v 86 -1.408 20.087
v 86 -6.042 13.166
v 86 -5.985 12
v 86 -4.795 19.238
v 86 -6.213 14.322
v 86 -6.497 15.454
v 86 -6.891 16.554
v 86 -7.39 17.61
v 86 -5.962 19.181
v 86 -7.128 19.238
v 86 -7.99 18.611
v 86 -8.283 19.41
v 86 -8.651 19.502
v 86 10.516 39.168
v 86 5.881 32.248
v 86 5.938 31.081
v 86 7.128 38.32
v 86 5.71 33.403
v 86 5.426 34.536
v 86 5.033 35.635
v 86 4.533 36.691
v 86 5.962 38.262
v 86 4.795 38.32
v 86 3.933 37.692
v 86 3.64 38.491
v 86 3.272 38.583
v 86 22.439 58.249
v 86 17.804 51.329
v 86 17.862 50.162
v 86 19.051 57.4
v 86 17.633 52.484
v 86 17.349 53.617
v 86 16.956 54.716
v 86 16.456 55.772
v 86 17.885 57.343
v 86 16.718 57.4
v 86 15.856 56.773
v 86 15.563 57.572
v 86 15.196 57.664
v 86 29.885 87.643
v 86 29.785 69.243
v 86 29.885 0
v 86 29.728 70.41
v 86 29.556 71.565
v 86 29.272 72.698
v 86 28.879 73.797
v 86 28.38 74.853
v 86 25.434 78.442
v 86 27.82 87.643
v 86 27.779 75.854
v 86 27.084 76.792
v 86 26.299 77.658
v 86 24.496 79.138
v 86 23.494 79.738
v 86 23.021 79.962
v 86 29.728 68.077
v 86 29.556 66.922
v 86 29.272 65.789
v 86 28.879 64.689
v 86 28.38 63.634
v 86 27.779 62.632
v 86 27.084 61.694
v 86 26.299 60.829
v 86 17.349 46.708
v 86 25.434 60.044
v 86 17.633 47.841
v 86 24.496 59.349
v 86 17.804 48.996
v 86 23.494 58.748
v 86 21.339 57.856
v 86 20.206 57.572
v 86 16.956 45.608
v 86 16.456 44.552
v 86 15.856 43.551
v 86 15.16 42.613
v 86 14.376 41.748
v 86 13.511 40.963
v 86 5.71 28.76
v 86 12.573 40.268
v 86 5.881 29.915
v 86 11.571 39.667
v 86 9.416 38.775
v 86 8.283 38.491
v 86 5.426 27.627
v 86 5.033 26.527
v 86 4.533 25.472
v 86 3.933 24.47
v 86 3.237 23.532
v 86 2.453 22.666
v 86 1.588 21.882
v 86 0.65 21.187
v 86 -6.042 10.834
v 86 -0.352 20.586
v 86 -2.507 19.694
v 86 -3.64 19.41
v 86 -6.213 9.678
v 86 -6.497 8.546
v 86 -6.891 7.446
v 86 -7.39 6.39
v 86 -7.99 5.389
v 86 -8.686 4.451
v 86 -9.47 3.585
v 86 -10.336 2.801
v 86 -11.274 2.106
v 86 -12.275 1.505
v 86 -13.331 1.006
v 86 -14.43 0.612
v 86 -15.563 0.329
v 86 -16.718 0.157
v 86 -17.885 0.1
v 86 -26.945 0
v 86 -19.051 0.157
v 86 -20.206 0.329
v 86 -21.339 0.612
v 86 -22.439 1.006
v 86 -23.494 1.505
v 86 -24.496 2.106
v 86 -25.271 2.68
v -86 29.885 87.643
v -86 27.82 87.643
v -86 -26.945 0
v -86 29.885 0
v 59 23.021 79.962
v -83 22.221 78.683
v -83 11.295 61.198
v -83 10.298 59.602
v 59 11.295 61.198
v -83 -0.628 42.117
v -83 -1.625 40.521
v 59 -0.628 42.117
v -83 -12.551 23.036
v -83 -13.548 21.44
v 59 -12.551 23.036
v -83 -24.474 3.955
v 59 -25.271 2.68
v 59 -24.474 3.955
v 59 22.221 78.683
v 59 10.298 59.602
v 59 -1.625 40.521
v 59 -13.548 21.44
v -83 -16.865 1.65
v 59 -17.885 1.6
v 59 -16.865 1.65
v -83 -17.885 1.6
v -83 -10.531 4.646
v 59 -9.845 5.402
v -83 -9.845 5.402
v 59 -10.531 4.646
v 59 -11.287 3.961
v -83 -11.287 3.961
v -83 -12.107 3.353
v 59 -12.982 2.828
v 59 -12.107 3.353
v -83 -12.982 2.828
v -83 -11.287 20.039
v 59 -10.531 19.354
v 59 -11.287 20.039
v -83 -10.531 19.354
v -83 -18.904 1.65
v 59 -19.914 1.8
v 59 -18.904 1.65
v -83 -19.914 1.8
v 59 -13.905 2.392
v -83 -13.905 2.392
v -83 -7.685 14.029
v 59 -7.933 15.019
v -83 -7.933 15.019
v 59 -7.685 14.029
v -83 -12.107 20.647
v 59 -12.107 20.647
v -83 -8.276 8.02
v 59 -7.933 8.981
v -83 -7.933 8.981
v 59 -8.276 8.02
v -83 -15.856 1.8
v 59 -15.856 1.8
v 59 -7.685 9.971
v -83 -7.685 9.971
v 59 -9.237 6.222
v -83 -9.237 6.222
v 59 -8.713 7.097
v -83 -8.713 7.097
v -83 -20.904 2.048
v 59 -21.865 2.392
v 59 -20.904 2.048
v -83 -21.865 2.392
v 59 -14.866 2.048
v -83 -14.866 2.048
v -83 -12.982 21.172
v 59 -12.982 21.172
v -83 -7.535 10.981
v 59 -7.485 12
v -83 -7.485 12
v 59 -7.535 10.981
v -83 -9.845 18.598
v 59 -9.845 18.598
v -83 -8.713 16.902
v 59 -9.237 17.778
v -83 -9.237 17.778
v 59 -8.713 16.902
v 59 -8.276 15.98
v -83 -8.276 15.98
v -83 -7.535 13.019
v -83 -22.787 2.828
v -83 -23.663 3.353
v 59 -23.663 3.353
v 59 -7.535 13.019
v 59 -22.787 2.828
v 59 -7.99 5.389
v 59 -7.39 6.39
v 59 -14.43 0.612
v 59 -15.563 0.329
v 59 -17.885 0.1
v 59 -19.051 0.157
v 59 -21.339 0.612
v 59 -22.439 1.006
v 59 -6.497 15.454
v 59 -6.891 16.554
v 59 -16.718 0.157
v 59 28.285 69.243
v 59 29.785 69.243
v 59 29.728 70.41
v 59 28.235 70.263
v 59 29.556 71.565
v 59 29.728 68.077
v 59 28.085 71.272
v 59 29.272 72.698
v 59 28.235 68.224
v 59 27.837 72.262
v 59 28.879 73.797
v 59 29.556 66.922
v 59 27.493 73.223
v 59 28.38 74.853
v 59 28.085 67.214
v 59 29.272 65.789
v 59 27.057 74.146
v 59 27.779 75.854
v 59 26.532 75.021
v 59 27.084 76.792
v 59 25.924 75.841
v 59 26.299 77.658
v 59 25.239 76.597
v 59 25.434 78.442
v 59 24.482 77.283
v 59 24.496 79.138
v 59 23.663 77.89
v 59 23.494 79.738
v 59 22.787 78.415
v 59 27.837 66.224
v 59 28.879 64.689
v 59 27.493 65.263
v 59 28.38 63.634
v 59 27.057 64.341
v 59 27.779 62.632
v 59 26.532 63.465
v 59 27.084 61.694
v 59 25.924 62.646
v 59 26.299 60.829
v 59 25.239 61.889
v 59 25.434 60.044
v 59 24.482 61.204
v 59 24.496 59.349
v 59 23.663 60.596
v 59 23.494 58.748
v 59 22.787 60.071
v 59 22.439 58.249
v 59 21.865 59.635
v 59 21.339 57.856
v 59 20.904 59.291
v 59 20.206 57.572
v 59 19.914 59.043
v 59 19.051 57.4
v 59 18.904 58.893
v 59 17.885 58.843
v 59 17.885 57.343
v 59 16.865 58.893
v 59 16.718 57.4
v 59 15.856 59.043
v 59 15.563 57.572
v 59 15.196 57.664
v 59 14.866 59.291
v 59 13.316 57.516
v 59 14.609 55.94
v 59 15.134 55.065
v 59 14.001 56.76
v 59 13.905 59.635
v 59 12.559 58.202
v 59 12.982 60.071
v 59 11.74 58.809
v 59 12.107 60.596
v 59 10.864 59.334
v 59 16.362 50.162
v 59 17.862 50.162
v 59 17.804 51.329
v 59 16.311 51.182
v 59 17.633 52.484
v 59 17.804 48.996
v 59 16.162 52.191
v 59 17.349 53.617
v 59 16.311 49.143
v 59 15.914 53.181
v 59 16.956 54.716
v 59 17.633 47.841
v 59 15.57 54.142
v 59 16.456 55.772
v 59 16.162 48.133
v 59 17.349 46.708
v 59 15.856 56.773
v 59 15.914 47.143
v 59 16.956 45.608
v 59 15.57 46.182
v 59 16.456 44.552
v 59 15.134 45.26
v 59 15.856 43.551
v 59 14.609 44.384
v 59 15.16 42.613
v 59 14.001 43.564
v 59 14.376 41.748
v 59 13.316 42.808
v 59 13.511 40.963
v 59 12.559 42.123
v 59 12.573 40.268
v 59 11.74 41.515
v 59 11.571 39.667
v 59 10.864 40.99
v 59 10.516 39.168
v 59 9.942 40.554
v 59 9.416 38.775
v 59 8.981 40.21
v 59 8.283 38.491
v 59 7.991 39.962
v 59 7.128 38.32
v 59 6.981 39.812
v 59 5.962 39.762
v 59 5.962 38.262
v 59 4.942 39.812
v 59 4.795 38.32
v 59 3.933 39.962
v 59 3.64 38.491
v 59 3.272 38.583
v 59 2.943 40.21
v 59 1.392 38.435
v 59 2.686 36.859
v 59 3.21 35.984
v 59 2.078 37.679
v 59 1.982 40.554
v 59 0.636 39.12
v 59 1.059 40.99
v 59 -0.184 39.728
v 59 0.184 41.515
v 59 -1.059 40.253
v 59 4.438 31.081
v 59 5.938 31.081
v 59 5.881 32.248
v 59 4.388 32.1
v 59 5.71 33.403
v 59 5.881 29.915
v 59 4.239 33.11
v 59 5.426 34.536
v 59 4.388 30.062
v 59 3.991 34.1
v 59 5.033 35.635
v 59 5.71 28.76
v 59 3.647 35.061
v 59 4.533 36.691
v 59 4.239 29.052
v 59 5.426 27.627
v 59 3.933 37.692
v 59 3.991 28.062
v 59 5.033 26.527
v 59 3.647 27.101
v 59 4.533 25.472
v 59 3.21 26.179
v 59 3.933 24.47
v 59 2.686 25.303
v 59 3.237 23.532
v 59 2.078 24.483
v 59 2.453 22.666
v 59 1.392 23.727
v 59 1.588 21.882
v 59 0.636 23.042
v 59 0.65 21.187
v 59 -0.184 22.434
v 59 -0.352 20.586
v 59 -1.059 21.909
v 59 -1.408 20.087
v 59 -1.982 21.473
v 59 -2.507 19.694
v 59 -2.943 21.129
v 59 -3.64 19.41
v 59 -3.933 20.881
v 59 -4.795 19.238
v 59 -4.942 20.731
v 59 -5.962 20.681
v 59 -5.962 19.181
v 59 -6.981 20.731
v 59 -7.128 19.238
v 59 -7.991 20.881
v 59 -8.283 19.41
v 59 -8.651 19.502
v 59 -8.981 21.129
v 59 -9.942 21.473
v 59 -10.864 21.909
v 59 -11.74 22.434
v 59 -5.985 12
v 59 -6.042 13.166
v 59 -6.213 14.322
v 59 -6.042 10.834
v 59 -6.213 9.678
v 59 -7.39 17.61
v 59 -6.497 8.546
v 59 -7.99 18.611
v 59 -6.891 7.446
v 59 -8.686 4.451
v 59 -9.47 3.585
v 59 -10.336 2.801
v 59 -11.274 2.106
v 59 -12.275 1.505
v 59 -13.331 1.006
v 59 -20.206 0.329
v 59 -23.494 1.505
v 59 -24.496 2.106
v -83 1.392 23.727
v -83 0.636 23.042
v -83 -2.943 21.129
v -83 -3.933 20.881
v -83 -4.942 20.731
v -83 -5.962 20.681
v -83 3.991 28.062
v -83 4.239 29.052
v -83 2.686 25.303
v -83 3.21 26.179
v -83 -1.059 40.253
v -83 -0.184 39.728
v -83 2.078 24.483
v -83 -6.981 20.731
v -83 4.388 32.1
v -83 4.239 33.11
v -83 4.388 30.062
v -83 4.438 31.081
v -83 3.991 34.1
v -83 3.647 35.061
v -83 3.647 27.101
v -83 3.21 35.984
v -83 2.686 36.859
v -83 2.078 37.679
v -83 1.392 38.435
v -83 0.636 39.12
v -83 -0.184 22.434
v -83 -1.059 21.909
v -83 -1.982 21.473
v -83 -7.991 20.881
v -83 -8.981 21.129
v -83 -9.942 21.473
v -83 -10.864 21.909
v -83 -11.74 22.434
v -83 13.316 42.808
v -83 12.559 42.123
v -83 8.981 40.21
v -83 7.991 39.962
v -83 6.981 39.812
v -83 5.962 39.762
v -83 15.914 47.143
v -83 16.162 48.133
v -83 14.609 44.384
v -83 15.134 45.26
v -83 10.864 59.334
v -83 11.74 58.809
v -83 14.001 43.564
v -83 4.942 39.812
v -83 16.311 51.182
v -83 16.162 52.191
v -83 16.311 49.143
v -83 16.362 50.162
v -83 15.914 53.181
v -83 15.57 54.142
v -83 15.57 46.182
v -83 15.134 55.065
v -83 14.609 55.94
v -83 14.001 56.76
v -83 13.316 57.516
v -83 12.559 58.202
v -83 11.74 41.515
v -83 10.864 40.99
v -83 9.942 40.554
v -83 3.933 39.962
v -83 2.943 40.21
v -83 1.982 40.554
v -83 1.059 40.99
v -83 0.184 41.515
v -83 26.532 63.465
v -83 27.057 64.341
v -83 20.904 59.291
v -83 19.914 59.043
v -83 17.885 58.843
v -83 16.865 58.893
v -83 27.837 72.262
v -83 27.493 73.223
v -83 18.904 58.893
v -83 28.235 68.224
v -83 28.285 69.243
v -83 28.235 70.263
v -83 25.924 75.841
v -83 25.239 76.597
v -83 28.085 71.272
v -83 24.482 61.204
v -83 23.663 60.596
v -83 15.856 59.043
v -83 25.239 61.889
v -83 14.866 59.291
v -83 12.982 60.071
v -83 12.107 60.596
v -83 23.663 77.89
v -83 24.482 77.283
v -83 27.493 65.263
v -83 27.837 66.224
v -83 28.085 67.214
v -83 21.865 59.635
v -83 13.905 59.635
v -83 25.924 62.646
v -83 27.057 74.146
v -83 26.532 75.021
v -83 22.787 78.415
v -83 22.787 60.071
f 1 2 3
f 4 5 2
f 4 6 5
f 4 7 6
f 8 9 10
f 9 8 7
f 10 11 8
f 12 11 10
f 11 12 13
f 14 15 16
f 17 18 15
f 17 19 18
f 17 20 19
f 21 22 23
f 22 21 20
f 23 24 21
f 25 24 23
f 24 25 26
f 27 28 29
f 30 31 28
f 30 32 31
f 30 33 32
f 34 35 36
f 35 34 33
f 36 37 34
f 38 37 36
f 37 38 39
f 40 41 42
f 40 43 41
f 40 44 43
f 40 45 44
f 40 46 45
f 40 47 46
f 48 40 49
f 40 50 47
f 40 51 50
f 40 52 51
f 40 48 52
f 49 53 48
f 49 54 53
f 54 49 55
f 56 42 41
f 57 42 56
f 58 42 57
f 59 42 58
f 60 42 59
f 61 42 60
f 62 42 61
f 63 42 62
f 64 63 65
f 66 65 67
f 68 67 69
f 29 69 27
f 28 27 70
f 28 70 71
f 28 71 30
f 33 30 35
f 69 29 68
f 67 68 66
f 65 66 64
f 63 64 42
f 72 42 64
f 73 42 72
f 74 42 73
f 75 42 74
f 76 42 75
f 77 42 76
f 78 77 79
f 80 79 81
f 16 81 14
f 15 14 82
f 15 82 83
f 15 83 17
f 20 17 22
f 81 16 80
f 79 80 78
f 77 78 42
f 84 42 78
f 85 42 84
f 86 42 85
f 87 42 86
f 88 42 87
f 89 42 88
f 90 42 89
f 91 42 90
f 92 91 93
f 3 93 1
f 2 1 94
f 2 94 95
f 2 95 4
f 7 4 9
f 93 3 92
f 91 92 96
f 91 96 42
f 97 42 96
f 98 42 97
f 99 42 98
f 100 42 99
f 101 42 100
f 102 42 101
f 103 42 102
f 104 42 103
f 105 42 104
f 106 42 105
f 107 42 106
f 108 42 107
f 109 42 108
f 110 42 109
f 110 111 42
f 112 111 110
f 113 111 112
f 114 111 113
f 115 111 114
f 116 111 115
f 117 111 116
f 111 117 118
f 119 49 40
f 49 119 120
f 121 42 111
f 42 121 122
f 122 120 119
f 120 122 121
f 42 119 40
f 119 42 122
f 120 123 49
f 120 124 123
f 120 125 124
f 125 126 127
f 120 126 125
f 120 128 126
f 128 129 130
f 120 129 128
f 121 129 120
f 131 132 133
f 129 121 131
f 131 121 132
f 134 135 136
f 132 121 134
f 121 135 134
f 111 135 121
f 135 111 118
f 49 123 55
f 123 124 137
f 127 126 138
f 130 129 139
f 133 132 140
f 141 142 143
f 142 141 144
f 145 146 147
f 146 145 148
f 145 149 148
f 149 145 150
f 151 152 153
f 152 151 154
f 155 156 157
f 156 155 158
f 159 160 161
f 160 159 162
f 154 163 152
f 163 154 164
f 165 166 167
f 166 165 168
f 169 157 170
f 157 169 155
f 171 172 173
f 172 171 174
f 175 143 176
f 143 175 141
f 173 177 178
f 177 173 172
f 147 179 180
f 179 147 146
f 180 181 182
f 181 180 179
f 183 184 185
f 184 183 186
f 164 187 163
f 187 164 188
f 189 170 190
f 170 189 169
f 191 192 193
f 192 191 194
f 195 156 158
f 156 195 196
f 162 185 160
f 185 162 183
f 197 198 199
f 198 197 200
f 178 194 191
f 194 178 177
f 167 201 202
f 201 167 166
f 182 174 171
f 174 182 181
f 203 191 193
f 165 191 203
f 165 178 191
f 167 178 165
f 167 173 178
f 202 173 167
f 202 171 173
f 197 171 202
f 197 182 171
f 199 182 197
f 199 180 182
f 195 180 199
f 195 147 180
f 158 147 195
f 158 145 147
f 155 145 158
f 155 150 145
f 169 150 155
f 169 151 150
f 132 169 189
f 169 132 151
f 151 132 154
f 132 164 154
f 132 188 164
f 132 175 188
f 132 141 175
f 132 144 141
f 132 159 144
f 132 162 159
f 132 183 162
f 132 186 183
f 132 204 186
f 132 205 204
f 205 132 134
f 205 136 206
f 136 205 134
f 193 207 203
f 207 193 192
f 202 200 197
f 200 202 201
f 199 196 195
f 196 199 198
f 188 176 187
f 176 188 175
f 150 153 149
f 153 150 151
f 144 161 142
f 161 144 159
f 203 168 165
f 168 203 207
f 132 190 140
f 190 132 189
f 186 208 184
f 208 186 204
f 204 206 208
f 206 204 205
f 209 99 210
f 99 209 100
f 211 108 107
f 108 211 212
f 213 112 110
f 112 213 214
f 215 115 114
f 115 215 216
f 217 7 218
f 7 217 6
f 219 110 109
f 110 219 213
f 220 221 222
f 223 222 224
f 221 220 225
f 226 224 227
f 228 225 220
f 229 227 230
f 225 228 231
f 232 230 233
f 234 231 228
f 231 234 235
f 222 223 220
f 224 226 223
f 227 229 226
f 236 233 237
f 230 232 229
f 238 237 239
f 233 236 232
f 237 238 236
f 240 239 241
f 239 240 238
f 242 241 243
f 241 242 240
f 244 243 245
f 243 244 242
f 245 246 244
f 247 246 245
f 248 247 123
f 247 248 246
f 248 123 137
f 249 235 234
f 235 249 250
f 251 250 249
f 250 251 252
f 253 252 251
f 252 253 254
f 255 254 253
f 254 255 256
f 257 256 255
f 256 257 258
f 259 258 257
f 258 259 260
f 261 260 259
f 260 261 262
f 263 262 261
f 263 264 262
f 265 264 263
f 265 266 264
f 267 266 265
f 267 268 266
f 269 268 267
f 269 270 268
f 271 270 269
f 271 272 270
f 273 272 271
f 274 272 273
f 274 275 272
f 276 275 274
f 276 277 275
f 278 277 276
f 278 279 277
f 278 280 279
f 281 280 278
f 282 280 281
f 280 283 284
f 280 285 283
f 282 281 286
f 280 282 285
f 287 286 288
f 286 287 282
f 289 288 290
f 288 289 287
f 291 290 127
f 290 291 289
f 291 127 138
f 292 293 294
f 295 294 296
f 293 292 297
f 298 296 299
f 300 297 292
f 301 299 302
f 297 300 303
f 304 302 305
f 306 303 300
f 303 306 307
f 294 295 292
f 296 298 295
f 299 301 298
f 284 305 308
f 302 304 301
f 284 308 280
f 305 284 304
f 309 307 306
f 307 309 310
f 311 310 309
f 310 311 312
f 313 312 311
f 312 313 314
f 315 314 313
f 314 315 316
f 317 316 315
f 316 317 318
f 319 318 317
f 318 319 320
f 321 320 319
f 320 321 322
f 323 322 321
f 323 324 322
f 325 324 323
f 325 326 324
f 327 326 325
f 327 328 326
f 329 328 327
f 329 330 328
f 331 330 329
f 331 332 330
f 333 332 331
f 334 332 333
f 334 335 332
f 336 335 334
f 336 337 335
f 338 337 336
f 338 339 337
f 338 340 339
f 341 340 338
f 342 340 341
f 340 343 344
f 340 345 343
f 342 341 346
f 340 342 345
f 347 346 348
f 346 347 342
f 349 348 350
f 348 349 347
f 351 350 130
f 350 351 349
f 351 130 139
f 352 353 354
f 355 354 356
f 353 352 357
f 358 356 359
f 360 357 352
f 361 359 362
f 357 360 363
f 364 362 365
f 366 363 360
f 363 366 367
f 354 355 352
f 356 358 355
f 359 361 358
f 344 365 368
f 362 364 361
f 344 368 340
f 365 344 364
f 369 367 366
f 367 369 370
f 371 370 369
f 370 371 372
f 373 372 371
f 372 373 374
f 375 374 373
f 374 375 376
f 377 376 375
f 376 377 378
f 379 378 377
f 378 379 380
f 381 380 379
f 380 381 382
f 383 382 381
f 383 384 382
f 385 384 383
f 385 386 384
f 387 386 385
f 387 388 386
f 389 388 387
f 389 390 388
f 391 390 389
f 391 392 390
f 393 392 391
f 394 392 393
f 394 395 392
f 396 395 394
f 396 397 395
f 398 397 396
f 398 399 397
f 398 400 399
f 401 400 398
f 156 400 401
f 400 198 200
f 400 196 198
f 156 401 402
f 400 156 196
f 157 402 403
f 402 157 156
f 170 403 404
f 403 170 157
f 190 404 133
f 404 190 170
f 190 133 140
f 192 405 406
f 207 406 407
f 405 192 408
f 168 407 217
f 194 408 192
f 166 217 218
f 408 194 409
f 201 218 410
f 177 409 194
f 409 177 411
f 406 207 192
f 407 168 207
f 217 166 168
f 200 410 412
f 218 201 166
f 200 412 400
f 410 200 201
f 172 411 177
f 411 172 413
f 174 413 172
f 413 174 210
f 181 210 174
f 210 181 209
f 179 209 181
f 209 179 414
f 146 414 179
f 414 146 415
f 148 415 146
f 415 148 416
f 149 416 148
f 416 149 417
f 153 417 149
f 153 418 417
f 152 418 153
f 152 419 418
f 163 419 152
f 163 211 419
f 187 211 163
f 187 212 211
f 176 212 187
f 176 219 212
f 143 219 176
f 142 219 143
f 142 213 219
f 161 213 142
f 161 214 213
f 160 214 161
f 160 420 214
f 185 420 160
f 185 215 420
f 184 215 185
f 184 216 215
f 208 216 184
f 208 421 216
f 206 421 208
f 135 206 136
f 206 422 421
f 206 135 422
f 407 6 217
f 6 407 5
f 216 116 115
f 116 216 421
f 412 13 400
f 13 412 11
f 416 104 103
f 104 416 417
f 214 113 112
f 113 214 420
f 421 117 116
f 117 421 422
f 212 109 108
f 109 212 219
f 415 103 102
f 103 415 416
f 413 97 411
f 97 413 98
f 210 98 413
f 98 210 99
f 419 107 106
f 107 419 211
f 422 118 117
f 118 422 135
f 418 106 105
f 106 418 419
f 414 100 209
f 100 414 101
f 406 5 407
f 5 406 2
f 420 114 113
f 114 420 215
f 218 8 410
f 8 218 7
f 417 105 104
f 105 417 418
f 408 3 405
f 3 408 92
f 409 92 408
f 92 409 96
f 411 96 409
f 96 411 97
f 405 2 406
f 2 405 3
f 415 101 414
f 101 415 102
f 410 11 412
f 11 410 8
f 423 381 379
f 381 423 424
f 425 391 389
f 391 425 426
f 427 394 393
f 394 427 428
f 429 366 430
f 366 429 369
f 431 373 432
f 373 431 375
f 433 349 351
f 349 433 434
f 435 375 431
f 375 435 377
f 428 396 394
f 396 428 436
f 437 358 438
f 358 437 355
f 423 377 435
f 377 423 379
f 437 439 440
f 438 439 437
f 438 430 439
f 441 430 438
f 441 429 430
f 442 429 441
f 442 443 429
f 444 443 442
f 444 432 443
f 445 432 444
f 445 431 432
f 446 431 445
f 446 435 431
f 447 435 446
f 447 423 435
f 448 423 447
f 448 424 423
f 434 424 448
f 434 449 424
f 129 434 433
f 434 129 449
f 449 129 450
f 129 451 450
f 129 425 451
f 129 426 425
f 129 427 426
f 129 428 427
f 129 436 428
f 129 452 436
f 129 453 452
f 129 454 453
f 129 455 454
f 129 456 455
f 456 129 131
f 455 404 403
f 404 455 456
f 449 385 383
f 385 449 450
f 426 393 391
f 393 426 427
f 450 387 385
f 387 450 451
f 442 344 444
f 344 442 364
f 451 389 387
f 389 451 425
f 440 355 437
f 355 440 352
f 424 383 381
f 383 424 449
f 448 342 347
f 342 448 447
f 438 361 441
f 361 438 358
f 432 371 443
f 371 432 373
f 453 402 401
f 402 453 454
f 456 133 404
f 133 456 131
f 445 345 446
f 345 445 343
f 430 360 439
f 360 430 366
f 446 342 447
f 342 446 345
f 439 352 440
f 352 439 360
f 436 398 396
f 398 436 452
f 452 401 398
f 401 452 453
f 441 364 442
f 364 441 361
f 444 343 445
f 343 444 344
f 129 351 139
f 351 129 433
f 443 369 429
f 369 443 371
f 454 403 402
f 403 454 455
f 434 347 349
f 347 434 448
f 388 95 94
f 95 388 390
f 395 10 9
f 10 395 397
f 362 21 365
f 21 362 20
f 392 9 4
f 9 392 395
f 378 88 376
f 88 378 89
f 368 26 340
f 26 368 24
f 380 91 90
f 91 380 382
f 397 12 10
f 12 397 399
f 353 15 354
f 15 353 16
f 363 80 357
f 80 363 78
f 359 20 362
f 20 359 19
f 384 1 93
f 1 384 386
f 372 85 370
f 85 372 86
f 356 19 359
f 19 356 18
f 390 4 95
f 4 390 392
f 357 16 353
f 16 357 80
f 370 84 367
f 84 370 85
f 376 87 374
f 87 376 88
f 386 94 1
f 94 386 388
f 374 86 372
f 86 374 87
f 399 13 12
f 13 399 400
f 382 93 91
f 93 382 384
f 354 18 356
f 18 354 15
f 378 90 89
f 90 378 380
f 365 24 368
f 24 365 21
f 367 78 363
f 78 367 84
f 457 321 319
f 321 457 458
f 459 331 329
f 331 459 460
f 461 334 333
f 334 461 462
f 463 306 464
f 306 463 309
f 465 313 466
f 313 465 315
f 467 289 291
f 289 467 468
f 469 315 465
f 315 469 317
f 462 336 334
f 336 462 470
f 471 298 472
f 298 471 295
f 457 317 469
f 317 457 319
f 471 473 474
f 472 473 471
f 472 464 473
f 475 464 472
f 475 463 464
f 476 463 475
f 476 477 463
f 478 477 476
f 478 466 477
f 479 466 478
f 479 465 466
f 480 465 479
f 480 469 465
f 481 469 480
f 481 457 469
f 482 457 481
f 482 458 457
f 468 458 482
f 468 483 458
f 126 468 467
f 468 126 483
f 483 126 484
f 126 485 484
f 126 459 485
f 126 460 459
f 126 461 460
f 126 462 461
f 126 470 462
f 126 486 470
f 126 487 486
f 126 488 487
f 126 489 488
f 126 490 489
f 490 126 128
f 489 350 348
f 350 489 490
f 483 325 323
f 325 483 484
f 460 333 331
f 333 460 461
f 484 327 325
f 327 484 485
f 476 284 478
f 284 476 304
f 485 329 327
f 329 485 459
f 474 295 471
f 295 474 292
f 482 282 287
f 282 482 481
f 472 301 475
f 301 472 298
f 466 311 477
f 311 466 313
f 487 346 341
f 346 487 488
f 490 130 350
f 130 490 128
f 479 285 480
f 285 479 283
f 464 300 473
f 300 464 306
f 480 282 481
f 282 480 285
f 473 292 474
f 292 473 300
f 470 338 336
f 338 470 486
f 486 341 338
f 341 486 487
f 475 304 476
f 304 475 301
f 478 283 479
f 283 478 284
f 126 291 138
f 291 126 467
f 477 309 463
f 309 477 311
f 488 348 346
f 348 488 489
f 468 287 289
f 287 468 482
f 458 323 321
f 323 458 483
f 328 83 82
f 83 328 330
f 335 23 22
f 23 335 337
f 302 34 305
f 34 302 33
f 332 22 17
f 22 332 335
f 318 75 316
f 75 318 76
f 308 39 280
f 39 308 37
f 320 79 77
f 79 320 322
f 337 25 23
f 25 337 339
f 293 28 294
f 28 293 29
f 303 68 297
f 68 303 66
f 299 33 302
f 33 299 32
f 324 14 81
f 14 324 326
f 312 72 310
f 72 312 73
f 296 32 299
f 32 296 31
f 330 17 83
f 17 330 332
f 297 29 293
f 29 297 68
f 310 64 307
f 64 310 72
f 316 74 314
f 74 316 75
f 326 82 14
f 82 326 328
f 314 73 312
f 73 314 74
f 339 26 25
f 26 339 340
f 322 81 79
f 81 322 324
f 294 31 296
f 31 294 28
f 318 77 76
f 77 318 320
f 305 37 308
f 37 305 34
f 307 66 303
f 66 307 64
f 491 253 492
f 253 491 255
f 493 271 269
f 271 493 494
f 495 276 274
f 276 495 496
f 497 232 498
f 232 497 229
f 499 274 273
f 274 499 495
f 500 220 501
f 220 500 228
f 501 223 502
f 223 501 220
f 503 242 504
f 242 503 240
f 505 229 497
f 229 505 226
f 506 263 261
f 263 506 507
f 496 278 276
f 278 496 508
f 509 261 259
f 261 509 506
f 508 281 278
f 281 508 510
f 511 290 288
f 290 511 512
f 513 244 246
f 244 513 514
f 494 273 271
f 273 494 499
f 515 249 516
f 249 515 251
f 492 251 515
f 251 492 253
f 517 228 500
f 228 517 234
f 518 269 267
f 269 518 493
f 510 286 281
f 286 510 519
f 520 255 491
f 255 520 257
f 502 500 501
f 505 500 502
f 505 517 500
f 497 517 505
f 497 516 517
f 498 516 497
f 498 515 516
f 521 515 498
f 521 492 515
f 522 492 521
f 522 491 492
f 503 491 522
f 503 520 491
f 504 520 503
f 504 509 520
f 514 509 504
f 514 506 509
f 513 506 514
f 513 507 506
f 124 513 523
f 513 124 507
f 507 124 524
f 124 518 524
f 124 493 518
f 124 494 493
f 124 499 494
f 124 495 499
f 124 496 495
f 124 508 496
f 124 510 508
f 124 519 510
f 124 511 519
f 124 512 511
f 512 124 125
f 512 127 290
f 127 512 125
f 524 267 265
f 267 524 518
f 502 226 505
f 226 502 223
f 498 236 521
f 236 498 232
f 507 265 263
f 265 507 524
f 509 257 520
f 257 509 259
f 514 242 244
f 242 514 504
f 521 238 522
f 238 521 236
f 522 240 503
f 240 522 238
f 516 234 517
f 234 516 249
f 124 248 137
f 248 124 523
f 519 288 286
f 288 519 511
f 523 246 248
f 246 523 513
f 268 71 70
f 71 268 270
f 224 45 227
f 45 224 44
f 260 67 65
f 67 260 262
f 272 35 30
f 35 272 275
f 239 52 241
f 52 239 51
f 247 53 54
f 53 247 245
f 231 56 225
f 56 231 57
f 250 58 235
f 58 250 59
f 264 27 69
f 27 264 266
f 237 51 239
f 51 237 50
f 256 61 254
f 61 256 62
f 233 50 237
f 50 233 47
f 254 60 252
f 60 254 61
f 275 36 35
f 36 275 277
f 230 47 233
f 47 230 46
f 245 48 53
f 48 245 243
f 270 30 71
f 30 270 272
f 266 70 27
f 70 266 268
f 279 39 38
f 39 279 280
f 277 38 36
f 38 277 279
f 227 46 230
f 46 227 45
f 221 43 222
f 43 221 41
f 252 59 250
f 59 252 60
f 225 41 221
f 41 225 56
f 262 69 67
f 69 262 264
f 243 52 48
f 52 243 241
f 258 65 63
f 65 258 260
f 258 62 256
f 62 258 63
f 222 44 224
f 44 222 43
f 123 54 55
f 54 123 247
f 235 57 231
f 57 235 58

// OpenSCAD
// file: common.scad
// ============================================================
// common.scad — shared parameters + modules for all designs
// LOCKED PEN SPECIFICATION (do not change)
// ============================================================
PEN_L = 165;      // pen length (mm)
PEN_A = 17;       // pen cross-section minor
PEN_B = 20;       // pen cross-section major (used as diameter envelope)
CLEAR = 0.4;      // fit clearance
WALL  = 1.6;      // minimum wall thickness

$fn = 64;

RCH = PEN_B/2 + CLEAR;   // = 10.4  channel radius
EPS = 0.01;

// --- open-top U trough cut, axis along X, centered at local origin -----------
// Removes a lower half-cylinder of radius r plus a full-width vertical slot
// upward, so the channel is open at the top (no ceiling -> no overhang).
module trough_cut(len, r=RCH, top=80) {
    union() {
        rotate([0,90,0]) cylinder(h=len, r=r, center=true);
        translate([0,0,top/2]) cube([len, 2*r, top], center=true); // slot upward
    }
}

// --- teardrop hole, axis along X, centered at local origin --------------------
// 45-degree self-supporting apex pointing +Z so a horizontal bore can print
// without support.
module teardrop_cut(len, r=RCH) {
    rotate([0,90,0])
        linear_extrude(height=len, center=true)
            union() {
                circle(r=r);
                polygon([[ 0.7071*r, 0.7071*r],
                         [ 0,         1.4142*r],
                         [-0.7071*r,  0.7071*r]]);
            }
}

// --- dial relief: widened open-top pocket at one channel end -----------------
// place at the +X or -X end of a channel so the dose dial clears / can be turned
module dial_relief(end_x, r=RCH+2.2, len=28, top=80) {
    translate([end_x, 0, 0]) trough_cut(len, r, top);
}
// file: rack_lib.scad
// rack_lib.scad — parametric reclined "toast-rack" for horizontal pens
// One module, driven by params, so each design iteration is an attributable
// change. Pens load from the top-front long face (radially into each groove);
// the ramp faces up so it prints support-free.
include <common.scad>

LBLK = PEN_L + 7;   // 172  overall body length (< 177.8), leaves end walls

// n       : number of pens
// phi     : ramp angle from horizontal (deg) — steeper = narrower + more top-load
// P       : along-ramp center spacing (>= 22.4 so pens don't intersect)
// lip     : grooves cut this far below the ramp plane -> snap-retention lip
// rr      : dial-relief radius (wider mouth at +X end)
// rlen    : dial-relief length along X
// endwall : solid wall thickness left at each end of a groove (containment)
// scoop   : add a thumb-scallop at the +X mouth for easy pen removal
// plate   : recess a nameplate/label pocket into the flat back face
// vials   : number of vertical vial wells bored into the back-top shelf (0 = none)
// flex     : number of relief gaps cut across each lip -> short spring-fingers
//            that flex outward, so a rigid pen snaps in with low force
module rack(n=4, phi=58, P=22.5, lip=2.5, rr=RCH+1.5, rlen=30,
            endwall=3, scoop=false, plate=false, vials=0, flex=0) {
    cph = cos(phi);
    sph = sin(phi);
    yc  = [for (i=[0:n-1]) (-(n-1)/2 + i) * P * cph];
    zc  = [for (i=[0:n-1]) (RCH + WALL) + i * P * sph];

    ymin = yc[0]   - RCH - WALL;
    ymax = yc[n-1] + RCH + WALL;
    Wb   = ymax - ymin;
    ycen = (ymax + ymin) / 2;
    Hbox = zc[n-1] + RCH + (vials > 0 ? 16 : 8);   // extra back-top stock for wells
    glen = LBLK - 2 * endwall;
    relief_cx = LBLK/2 - rlen/2 + 3;               // pokes ~3 past +X face
    big = 800;

    difference() {
        // ---- solid wedge: box with its top sheared off along the ramp plane ----
        difference() {
            translate([0, ycen, Hbox/2]) cube([LBLK, Wb, Hbox], center=true);
            translate([0, yc[0], zc[0] + lip])
                rotate([phi, 0, 0])
                    translate([0, 0, big/2]) cube([LBLK + 2, big, big], center=true);
        }

        // ---- grooves + dial relief (+ optional thumb scoop) ----
        for (i = [0:n-1]) {
            translate([0, yc[i], zc[i]])                       // main groove
                rotate([0,90,0]) cylinder(h=glen, r=RCH, center=true);
            translate([relief_cx, yc[i], zc[i]])               // dial relief mouth
                rotate([0,90,0]) cylinder(h=rlen, r=rr, center=true);
            if (scoop)
                translate([LBLK/2, yc[i] - 0.30*RCH, zc[i]]) sphere(r=7.5);
            // flex-relief gaps: notch the lip (above centerline) at intervals
            if (flex > 0)
                for (k = [1:flex])
                    translate([-LBLK/2 + k*LBLK/(flex+1), yc[i], zc[i] + RCH])
                        cube([3, 2*RCH + 6, 2*RCH], center=true);
        }

        // ---- optional vertical vial wells in the back-top shelf ----
        if (vials > 0) {
            wy = ymax - 9;                                     // along the back edge
            for (k = [0:vials-1]) {
                wx = -((vials-1)/2)*44 + k*44;
                translate([wx, wy, Hbox - 22 + EPS])
                    cylinder(h = 22, d = 14);
            }
        }

        // ---- optional nameplate recess in the flat back face ----
        if (plate)
            translate([0, ymax + EPS, zc[n-1]*0.5])
                rotate([90,0,0]) translate([0,0,-0.8])
                    linear_extrude(1.2) square([90, 16], center=true);
    }
}
// main file
// Iter1 — containment: closed groove ends + dial relief at +X, 58deg, 4 pens.
include <rack_lib.scad>
rack(n=4, phi=58, P=22.5, lip=2.5, endwall=3);
